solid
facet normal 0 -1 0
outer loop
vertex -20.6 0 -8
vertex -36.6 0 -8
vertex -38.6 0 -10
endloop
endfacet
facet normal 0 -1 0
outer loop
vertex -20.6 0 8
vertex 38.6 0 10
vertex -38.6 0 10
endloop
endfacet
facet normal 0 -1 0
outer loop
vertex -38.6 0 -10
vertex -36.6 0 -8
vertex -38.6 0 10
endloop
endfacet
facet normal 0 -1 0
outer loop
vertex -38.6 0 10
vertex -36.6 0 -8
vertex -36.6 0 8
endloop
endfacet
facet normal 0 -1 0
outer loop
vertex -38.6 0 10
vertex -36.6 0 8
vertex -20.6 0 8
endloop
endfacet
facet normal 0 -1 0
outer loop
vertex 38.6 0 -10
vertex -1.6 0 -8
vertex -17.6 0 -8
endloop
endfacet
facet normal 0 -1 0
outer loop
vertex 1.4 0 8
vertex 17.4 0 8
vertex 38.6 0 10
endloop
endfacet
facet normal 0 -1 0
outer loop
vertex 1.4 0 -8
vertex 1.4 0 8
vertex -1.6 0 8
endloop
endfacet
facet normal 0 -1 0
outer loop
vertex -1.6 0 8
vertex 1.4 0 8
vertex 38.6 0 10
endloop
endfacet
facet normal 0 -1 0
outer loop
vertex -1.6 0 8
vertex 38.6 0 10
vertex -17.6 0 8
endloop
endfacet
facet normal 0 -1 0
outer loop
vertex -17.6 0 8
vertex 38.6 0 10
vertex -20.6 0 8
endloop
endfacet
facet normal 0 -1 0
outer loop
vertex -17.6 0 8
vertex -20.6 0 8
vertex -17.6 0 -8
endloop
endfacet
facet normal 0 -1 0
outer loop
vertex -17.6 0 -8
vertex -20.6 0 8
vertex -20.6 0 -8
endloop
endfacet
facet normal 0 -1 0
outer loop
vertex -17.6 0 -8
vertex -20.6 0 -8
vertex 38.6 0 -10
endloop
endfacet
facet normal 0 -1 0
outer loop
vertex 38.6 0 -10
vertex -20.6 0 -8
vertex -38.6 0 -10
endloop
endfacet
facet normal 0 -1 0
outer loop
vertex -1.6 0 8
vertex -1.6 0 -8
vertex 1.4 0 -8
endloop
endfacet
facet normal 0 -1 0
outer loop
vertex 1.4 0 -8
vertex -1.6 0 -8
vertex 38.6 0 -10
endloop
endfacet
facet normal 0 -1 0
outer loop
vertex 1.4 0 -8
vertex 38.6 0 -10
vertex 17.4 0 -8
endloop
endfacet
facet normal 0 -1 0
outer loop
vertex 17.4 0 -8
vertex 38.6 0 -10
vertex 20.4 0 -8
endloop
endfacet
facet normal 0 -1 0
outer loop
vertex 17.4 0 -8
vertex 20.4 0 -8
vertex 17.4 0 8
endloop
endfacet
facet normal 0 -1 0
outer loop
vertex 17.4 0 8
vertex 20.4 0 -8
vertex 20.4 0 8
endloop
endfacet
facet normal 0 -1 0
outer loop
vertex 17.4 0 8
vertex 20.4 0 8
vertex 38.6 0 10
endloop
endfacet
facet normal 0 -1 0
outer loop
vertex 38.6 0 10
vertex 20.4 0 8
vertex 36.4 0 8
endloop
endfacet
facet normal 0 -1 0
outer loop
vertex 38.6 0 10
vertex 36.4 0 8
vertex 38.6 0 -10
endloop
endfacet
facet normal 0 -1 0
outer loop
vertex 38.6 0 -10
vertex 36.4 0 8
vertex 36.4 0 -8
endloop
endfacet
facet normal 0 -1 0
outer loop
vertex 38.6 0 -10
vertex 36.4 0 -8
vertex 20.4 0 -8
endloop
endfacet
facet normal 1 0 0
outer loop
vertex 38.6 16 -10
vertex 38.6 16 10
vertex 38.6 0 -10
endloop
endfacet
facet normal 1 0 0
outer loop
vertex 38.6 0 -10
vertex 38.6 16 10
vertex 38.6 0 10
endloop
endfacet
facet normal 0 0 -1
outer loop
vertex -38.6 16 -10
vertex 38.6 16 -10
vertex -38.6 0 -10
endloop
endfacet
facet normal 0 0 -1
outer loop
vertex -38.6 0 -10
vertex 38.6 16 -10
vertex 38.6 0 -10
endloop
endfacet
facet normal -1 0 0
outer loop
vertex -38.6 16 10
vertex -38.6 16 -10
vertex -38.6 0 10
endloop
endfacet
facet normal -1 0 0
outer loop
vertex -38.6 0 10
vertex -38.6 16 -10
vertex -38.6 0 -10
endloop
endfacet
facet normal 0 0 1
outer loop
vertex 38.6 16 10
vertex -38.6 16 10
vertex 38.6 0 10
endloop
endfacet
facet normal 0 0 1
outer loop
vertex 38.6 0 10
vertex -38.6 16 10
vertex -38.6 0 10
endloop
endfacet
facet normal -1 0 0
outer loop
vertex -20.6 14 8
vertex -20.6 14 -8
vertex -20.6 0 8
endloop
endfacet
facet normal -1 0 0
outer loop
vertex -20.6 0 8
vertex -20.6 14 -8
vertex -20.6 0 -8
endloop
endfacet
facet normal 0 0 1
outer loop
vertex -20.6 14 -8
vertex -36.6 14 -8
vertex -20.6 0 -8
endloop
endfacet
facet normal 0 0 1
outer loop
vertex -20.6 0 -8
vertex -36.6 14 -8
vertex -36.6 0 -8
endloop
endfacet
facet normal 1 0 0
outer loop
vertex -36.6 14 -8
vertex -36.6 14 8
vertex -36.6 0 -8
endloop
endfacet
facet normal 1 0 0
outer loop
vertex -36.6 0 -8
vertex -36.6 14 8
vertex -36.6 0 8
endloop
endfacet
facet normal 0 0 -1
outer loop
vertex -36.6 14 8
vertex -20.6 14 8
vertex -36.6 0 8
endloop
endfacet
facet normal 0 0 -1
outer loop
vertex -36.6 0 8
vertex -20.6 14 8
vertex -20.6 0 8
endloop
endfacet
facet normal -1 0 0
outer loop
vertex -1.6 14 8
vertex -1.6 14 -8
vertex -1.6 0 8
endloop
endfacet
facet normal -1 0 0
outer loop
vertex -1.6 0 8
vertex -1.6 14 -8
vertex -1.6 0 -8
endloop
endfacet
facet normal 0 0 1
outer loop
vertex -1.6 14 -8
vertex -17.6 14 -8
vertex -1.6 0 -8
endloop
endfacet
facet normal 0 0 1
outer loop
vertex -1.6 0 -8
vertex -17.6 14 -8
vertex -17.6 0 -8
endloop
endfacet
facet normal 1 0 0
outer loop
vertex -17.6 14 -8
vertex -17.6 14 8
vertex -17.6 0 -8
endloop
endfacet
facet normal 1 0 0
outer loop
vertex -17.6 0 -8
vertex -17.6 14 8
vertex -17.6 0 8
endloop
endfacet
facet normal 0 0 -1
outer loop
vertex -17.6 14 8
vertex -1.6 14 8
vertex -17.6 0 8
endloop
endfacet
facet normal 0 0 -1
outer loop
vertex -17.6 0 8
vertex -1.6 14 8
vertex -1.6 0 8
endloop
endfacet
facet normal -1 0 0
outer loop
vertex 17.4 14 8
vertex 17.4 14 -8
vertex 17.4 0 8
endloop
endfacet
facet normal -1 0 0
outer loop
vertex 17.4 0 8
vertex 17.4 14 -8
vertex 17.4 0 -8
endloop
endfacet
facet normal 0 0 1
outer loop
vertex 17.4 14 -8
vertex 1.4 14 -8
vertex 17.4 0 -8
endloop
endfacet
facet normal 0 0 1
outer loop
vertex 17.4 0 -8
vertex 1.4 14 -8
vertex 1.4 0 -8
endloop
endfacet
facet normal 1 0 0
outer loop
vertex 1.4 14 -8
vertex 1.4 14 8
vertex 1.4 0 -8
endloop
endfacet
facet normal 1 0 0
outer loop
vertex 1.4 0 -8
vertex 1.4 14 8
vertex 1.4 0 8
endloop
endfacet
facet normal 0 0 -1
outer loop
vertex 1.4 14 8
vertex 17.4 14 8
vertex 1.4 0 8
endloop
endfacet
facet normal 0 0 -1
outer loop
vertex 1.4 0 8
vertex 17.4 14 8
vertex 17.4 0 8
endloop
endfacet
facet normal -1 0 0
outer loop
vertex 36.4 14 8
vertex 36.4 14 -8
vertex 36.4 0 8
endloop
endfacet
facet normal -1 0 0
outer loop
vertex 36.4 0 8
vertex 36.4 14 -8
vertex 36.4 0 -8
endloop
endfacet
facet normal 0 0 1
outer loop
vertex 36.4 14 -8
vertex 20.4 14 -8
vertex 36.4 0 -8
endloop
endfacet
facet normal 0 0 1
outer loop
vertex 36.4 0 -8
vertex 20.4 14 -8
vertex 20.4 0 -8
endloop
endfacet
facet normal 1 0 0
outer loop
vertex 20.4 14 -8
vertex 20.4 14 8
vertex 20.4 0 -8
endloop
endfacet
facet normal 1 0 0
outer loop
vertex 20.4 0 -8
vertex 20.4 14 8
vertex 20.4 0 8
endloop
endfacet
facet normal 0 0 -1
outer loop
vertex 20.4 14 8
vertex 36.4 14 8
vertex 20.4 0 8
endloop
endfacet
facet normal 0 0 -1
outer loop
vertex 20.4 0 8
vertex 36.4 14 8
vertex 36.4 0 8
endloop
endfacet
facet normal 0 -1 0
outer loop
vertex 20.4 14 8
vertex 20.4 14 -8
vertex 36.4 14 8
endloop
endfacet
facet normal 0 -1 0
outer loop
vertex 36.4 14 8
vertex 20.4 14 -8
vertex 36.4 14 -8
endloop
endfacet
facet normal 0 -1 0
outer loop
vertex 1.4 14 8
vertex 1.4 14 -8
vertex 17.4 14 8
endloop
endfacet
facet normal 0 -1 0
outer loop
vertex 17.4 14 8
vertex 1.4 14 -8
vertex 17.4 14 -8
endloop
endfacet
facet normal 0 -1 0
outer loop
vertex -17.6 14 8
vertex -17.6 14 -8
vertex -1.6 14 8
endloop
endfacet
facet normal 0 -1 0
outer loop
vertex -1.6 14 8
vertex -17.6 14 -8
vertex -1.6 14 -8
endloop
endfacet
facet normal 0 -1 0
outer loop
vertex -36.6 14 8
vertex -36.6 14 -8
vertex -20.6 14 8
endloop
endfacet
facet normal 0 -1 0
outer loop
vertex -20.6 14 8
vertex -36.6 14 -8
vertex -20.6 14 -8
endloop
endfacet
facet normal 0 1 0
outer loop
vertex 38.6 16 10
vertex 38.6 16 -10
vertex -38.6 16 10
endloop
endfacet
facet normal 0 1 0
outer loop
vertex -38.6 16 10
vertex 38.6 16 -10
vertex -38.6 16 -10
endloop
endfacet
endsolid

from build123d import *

# Parameters (mm, degrees)
SKETCH1_W           = 77.2
SKETCH1_H           = 20
SKETCH1_W_2         = 16
SKETCH1_H_2         = 16
BOSS_EXTRUDE1_DEPTH = 14
SKETCH2_W           = 77.2
SKETCH2_H           = 20
BOSS_EXTRUDE2_DEPTH = 2


with BuildPart() as part:
    # Sketch1 → Boss-Extrude1 (new body)
    with BuildSketch(Plane(origin=(0, 0, 0), x_dir=(1, 0, 0), z_dir=(0, 1, 0))):
        Rectangle(SKETCH1_W, SKETCH1_H)
        with Locations((-9.6, 0)):
            Rectangle(SKETCH1_W_2, SKETCH1_H_2, mode=Mode.SUBTRACT)
        with Locations((-28.6, 0)):
            Rectangle(SKETCH1_W_2, SKETCH1_H_2, mode=Mode.SUBTRACT)
        with Locations((9.4, 0)):
            Rectangle(SKETCH1_W_2, SKETCH1_H_2, mode=Mode.SUBTRACT)
        with Locations((28.4, 0)):
            Rectangle(SKETCH1_W_2, SKETCH1_H_2, mode=Mode.SUBTRACT)
    extrude(amount=BOSS_EXTRUDE1_DEPTH)

    # Sketch2 → Boss-Extrude2 (add)
    with BuildSketch(Plane(origin=(0, 14, 0), x_dir=(1, 0, 0), z_dir=(0, 1, 0))):
        Rectangle(SKETCH2_W, SKETCH2_H)
    extrude(amount=BOSS_EXTRUDE2_DEPTH)


solid = part.part
